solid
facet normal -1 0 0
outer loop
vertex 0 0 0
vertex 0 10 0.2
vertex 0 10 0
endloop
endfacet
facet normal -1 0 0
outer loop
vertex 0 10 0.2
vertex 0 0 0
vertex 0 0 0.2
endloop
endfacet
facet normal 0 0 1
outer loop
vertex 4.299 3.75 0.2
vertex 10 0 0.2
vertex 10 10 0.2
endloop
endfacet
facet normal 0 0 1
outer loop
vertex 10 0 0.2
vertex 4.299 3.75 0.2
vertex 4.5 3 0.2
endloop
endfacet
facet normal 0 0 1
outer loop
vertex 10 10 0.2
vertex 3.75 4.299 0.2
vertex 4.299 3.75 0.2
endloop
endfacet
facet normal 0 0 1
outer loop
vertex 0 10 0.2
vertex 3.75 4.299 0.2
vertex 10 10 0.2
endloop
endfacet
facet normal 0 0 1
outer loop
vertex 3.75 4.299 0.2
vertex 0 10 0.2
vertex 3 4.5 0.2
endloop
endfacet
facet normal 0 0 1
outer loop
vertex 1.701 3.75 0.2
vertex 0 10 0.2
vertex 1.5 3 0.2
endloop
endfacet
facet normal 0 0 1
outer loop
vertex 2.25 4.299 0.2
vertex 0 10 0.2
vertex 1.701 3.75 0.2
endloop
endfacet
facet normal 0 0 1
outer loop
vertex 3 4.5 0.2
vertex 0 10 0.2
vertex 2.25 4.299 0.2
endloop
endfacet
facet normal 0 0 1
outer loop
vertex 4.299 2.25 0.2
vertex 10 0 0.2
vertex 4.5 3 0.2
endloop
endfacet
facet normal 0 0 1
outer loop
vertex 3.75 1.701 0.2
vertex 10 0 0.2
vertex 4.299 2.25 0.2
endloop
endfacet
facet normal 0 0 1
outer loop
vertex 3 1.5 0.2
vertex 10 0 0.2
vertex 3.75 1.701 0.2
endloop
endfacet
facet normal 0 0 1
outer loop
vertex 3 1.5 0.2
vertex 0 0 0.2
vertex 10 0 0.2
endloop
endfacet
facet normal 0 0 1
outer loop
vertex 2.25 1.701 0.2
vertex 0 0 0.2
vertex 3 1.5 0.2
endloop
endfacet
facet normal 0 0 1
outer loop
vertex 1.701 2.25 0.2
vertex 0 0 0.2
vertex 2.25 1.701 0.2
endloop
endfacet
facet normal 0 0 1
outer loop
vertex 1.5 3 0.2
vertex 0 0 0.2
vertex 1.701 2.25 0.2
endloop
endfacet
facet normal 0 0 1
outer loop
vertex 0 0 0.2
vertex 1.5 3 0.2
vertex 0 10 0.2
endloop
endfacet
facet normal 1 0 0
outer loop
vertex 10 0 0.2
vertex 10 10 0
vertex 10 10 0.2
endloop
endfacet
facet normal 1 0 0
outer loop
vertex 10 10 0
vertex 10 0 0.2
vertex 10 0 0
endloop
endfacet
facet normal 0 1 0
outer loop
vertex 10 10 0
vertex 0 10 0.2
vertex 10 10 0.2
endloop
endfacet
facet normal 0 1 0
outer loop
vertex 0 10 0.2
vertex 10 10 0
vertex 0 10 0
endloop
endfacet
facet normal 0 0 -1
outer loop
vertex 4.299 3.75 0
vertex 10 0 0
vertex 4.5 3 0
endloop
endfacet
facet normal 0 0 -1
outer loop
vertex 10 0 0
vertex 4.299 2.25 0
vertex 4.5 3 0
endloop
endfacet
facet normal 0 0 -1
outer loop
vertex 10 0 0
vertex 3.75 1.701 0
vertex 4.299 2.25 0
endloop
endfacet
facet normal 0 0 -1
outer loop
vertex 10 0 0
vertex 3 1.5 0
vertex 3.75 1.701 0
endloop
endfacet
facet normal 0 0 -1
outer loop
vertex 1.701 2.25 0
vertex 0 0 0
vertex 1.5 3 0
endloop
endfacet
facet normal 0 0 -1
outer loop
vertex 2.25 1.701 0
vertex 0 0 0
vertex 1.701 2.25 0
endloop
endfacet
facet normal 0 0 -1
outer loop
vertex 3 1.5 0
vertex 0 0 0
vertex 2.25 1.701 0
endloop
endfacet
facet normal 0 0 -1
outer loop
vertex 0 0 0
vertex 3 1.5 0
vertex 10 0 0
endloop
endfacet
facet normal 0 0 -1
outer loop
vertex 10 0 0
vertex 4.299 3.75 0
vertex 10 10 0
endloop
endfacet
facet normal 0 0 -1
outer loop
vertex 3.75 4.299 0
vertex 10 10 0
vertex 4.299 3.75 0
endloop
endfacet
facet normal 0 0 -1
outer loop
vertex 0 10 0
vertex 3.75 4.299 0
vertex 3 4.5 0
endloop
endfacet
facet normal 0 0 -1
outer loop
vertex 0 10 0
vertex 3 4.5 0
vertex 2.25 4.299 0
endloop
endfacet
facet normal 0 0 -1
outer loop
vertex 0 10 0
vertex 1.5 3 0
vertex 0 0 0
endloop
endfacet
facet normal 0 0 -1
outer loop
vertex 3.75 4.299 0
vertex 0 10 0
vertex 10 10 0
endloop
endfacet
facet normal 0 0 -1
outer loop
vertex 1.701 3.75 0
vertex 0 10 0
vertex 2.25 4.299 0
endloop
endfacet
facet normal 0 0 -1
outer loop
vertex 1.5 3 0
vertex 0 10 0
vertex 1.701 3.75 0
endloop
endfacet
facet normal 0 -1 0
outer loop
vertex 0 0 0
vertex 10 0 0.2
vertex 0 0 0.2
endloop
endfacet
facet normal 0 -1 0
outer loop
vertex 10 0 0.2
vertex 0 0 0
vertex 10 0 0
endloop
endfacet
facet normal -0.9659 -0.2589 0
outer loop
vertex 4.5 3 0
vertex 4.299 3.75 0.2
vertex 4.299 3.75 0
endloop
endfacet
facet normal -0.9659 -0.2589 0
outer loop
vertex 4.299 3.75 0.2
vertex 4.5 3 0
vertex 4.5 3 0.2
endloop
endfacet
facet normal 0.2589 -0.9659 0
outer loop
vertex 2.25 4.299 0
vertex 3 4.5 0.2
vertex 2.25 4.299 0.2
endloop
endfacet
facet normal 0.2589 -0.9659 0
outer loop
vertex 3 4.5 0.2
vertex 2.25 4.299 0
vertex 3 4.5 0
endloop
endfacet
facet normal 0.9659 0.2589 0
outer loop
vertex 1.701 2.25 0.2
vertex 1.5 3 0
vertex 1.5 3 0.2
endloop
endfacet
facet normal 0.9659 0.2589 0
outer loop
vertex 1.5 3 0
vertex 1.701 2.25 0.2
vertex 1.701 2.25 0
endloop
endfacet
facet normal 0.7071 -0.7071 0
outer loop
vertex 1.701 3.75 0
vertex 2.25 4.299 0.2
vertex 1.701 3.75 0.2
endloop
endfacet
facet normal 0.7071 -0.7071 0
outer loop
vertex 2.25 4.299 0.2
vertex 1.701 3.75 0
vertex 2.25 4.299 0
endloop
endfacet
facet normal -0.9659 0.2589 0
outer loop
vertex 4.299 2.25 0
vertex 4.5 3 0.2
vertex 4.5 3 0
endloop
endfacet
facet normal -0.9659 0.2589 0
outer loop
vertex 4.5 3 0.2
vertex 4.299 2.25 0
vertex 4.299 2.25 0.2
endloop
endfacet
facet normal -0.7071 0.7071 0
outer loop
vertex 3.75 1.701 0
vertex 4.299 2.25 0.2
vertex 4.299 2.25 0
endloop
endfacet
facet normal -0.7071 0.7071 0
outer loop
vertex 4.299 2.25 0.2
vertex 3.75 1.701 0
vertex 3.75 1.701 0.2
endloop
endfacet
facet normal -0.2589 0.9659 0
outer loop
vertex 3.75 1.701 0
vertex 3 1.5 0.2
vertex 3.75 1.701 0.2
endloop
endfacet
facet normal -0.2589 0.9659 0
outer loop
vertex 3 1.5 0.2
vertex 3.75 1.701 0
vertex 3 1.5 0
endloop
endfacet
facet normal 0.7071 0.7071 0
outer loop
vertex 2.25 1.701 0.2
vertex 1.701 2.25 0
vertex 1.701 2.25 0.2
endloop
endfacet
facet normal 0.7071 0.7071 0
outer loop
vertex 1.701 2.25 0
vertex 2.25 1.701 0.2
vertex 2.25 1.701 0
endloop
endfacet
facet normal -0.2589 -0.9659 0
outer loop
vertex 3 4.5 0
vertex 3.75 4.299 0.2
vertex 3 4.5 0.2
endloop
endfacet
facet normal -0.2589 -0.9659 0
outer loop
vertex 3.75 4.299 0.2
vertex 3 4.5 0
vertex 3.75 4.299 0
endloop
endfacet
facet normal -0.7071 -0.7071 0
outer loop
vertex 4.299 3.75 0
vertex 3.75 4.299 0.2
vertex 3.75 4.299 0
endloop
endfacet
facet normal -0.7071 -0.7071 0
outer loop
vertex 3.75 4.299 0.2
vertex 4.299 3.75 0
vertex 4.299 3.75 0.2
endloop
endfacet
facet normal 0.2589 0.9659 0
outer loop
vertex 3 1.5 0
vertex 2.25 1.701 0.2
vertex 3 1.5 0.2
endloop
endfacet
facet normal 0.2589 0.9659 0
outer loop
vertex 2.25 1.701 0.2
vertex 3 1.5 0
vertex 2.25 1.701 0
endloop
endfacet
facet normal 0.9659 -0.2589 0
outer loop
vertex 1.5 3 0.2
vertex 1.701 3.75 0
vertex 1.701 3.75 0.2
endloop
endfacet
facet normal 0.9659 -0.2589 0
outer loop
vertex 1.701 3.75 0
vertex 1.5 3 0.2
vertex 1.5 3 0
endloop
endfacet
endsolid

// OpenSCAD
difference(){
    cube([10,10,0.2]);
    translate([3,3,-1])cylinder(100,r=1.5,$fn=12);
};
